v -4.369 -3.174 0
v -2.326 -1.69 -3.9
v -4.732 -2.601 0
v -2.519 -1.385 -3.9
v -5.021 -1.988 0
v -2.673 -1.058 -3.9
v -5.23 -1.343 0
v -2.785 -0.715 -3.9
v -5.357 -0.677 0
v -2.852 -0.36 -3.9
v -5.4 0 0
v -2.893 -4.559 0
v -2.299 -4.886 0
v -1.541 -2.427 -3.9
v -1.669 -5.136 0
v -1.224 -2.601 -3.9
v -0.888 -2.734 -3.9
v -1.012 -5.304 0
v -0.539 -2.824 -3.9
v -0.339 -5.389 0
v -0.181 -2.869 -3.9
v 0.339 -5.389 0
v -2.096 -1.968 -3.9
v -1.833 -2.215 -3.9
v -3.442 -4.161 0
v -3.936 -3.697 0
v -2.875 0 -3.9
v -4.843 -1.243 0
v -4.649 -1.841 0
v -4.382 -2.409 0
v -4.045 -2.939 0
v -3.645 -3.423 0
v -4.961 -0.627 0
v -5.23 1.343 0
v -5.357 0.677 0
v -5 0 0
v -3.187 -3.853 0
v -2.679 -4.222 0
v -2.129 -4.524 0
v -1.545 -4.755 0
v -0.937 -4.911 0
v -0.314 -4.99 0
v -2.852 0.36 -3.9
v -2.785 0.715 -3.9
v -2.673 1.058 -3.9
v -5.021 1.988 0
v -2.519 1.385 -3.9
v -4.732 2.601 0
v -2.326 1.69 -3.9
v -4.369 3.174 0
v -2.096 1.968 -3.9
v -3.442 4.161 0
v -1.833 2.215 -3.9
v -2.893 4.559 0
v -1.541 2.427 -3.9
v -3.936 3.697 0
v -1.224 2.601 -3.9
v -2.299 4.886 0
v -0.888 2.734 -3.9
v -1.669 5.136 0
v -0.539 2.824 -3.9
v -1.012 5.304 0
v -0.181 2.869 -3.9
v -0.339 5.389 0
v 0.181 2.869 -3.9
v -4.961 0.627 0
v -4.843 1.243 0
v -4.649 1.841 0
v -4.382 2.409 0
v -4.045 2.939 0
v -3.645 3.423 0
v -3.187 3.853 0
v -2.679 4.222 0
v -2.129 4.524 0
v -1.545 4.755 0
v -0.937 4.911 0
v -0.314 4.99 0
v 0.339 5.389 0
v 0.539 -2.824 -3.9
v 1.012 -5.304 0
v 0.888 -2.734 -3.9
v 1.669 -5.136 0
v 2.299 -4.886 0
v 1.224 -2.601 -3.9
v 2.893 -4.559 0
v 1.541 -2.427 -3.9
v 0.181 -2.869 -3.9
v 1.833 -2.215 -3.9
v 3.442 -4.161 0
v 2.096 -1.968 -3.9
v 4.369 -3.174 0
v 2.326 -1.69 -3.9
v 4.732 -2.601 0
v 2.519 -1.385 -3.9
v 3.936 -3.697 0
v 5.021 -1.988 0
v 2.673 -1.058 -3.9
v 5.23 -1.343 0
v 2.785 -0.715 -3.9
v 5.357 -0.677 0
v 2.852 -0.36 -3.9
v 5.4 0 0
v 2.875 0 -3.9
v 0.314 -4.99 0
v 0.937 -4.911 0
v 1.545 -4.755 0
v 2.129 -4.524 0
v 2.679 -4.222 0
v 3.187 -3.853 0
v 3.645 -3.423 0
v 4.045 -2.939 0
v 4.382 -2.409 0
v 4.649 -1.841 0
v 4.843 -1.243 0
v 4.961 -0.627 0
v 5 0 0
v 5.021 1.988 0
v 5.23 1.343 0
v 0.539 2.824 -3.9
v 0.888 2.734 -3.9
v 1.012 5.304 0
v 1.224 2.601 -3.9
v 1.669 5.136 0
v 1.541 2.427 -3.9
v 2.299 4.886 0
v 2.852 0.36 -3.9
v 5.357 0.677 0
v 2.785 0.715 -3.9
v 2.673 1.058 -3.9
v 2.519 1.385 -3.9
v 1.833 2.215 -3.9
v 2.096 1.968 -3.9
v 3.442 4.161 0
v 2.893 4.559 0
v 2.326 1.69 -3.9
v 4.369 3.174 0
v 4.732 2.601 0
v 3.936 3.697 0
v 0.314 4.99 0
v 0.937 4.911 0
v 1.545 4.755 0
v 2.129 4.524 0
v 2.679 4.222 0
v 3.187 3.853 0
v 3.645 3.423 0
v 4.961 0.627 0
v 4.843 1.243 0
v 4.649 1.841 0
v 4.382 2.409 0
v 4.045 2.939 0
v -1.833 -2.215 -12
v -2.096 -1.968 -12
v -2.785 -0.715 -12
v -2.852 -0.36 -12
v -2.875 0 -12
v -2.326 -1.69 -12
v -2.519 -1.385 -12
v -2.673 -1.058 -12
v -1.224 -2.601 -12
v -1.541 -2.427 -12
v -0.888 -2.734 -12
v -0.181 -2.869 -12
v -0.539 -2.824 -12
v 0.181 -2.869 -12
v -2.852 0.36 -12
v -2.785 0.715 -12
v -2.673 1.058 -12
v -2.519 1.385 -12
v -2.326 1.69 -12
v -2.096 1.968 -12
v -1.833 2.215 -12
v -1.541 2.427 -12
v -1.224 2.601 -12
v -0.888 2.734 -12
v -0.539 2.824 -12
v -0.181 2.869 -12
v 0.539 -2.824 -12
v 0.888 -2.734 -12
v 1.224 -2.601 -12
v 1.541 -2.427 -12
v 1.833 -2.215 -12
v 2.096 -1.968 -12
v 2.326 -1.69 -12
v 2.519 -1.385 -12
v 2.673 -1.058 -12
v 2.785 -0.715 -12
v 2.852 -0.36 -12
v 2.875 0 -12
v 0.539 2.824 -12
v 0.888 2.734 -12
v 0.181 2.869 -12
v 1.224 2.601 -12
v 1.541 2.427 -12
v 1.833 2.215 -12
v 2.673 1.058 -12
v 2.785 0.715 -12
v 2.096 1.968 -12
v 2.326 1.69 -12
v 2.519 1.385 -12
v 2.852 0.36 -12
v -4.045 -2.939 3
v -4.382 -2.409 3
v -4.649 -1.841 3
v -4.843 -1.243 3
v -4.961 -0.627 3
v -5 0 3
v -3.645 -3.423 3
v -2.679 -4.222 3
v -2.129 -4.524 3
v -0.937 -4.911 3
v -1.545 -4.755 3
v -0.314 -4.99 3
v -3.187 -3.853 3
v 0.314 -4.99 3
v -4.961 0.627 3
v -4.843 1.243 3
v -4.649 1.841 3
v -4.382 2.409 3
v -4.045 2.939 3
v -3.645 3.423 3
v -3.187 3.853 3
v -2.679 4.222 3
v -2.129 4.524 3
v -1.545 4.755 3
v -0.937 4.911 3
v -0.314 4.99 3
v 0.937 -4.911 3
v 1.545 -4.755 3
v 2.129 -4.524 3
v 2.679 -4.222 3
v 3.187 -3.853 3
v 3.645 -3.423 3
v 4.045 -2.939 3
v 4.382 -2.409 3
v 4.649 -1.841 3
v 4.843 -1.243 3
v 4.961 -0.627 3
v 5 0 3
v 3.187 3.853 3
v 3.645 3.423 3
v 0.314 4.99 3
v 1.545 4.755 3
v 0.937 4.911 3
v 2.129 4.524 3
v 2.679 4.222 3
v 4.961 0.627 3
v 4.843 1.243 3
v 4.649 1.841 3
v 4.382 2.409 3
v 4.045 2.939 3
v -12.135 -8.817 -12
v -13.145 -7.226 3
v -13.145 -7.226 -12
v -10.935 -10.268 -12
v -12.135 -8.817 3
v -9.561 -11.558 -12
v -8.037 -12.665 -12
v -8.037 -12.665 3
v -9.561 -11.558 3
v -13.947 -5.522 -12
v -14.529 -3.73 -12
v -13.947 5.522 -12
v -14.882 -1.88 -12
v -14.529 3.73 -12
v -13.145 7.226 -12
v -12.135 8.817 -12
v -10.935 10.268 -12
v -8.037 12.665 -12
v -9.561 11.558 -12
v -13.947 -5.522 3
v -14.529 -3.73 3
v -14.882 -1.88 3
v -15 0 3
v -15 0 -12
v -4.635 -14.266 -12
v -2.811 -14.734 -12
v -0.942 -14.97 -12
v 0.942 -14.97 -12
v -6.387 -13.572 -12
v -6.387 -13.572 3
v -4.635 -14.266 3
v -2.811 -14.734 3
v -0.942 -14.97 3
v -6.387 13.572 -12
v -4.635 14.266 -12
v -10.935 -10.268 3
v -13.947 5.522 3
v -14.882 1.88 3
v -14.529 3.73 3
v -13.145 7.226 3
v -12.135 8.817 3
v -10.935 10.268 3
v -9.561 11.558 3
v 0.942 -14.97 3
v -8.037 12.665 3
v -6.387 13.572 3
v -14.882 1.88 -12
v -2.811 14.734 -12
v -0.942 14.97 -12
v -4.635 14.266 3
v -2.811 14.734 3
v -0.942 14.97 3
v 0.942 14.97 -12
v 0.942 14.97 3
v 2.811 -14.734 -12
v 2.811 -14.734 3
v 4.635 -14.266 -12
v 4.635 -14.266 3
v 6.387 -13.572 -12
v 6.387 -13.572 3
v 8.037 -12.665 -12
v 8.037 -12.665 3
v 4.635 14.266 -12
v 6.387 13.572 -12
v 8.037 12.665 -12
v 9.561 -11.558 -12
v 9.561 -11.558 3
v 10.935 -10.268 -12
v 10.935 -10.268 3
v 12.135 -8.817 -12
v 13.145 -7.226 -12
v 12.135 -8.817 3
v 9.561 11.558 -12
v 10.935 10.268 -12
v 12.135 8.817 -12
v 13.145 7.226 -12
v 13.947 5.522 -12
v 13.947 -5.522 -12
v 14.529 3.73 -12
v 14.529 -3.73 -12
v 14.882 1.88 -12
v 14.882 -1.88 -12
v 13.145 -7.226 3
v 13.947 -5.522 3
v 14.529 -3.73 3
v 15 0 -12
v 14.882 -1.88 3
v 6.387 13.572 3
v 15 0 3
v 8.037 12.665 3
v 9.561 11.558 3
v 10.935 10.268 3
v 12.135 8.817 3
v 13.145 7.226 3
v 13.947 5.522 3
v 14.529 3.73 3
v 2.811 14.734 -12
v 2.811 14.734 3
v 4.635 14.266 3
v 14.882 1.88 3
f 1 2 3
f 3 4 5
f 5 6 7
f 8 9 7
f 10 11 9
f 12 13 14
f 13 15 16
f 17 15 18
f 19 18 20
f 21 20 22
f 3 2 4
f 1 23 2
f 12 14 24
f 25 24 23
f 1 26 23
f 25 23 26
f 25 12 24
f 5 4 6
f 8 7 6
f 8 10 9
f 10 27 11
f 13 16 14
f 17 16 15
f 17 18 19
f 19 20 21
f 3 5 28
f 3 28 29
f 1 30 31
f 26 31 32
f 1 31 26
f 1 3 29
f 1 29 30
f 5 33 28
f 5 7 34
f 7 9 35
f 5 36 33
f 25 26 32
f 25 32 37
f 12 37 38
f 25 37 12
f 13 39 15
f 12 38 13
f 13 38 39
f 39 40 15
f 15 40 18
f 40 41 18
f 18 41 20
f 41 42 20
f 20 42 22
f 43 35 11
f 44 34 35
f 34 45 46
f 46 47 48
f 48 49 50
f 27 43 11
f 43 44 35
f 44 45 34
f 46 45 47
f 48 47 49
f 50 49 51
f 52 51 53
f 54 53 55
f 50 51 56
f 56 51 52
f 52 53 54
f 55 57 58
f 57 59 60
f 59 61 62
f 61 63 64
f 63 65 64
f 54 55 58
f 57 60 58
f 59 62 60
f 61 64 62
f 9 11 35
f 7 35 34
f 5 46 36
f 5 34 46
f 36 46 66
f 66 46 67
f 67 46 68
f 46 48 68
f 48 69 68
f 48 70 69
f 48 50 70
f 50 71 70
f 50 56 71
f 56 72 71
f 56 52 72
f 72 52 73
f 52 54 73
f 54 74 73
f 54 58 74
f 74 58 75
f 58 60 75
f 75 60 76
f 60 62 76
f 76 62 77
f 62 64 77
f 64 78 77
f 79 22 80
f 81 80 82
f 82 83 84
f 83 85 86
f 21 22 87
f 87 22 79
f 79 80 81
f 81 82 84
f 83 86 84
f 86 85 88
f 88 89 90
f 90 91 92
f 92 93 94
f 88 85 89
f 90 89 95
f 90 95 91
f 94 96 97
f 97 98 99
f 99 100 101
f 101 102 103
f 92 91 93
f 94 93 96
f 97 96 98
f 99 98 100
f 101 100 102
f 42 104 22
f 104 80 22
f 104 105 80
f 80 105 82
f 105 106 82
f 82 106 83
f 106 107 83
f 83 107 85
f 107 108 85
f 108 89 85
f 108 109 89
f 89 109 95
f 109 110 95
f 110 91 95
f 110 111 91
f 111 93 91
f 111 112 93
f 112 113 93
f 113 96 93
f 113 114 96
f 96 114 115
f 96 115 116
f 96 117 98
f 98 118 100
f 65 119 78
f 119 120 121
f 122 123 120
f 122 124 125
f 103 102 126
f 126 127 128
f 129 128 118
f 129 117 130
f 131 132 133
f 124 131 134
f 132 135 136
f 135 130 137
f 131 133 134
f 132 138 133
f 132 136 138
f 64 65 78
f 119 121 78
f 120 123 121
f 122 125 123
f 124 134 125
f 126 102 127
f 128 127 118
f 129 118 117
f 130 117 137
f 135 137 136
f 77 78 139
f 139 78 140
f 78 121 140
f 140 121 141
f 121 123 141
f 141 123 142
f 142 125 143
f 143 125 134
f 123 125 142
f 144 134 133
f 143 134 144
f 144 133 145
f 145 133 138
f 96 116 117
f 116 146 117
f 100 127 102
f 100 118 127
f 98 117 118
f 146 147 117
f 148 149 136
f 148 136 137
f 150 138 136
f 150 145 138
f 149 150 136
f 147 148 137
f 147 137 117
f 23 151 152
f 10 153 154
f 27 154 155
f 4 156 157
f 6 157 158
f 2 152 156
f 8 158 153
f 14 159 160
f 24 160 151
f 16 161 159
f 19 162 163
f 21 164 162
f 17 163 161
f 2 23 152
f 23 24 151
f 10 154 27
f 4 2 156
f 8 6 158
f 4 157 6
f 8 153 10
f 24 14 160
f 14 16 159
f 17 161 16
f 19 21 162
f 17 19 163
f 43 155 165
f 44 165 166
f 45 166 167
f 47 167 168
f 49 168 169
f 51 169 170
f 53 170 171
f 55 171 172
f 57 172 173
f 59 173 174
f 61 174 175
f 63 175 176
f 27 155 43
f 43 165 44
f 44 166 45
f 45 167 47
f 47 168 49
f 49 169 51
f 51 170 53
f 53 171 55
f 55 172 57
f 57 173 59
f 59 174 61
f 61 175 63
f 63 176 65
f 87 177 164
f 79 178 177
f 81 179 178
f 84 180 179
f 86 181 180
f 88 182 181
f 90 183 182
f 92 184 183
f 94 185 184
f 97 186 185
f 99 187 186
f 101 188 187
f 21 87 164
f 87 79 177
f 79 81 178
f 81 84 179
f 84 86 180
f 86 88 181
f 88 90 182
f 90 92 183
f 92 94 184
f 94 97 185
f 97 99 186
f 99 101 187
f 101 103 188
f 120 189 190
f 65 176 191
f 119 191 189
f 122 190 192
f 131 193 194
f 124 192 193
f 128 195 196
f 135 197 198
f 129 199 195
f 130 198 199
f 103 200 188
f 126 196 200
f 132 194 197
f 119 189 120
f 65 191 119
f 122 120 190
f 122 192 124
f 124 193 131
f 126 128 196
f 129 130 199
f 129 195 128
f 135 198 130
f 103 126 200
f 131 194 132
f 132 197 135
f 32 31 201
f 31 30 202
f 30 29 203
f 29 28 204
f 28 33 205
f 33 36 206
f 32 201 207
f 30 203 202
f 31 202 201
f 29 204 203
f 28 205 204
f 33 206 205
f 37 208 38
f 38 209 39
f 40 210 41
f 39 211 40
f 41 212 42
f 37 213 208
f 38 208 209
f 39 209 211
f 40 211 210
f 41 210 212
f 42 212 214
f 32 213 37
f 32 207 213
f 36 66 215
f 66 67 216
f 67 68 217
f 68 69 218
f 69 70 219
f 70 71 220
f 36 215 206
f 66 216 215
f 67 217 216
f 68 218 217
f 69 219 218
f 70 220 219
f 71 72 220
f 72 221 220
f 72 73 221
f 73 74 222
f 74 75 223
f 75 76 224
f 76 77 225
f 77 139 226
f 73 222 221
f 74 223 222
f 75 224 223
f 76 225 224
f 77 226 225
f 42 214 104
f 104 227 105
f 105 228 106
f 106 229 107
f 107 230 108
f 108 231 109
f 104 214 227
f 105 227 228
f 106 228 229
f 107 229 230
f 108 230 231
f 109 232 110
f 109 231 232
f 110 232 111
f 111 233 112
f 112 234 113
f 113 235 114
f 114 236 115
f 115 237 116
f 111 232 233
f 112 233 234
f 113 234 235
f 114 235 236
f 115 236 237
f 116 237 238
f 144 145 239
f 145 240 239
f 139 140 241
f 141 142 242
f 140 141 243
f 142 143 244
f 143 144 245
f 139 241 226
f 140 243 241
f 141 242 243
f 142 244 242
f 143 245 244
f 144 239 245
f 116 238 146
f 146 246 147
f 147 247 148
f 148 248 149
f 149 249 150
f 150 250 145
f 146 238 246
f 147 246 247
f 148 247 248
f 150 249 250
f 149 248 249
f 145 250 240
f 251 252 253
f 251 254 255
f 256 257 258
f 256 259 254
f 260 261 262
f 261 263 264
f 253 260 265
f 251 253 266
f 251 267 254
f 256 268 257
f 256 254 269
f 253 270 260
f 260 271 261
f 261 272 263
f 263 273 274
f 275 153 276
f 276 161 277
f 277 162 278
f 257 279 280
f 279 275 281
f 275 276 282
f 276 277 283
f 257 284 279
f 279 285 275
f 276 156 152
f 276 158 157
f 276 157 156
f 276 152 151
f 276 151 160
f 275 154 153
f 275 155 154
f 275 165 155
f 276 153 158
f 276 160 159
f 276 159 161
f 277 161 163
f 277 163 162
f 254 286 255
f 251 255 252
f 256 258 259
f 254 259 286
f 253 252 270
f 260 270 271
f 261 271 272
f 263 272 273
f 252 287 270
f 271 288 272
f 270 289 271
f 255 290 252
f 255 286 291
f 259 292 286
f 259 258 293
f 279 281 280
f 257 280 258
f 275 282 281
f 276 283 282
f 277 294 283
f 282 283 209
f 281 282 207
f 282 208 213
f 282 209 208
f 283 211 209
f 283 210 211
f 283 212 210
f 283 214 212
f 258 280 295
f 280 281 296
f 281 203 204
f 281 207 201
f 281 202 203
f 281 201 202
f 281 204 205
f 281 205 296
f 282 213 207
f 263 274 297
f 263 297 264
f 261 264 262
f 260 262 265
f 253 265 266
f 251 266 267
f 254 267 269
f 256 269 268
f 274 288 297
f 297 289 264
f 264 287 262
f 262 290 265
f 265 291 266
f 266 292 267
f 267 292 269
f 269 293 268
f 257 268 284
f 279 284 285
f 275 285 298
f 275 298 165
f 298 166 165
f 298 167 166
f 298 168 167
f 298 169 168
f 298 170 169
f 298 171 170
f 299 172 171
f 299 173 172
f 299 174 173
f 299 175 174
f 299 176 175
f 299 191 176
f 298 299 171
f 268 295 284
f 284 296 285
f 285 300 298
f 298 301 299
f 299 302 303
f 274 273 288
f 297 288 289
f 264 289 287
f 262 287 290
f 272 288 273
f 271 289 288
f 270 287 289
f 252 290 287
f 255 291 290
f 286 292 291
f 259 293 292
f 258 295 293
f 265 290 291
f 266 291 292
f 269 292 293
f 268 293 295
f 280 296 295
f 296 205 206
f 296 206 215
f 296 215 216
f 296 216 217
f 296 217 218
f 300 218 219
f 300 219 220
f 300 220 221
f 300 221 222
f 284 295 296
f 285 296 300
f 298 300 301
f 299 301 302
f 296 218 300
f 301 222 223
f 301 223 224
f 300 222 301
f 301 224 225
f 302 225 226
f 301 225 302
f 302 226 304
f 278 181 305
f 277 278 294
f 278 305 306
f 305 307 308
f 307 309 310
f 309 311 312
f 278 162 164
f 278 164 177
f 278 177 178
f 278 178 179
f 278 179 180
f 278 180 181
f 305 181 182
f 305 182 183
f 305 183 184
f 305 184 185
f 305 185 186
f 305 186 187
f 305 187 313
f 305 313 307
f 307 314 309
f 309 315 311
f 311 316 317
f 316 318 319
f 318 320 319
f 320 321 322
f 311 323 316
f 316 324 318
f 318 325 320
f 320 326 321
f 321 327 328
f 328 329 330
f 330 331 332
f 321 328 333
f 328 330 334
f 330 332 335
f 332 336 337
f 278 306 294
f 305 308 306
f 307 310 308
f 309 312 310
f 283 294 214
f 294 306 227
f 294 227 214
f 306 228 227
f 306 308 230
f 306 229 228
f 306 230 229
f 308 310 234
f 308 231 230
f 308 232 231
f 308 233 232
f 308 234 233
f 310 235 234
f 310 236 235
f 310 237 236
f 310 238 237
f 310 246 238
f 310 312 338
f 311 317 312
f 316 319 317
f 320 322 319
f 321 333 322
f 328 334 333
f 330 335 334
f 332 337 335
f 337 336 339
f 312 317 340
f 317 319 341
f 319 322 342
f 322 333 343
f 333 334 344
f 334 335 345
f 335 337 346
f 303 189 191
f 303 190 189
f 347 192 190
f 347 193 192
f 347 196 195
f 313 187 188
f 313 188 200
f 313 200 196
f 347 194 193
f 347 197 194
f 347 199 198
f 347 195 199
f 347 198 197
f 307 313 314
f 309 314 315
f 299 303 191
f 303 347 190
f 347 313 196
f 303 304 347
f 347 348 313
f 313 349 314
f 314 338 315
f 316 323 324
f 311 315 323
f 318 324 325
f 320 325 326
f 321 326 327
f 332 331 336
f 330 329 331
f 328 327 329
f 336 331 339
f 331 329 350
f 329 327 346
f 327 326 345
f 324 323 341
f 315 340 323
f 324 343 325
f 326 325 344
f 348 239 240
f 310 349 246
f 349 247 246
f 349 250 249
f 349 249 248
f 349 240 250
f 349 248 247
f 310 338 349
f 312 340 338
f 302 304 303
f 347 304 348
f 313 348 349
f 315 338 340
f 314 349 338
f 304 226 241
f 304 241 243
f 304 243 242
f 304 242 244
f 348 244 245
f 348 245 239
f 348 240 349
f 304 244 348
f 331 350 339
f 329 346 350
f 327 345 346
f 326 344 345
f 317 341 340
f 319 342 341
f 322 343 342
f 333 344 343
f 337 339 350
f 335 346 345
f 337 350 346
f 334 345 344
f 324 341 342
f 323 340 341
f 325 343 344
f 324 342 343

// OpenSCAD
$fn = 50;


difference() {
	union() {
		translate(v = [0, 0, -12.0000000000]) {
			cylinder(h = 15, r = 15.0000000000);
		}
	}
	union() {
		translate(v = [0, 0, 0]) {
			rotate(a = [0, 0, 0]) {
				difference() {
					union() {
						translate(v = [0, 0, -15.0000000000]) {
							cylinder(h = 15, r = 2.6000000000);
						}
						translate(v = [0, 0, -3.9000000000]) {
							cylinder(h = 3.9000000000, r1 = 2.8750000000, r2 = 5.4000000000);
						}
						translate(v = [0, 0, -15.0000000000]) {
							cylinder(h = 15, r = 2.8750000000);
						}
						translate(v = [0, 0, -15.0000000000]) {
							cylinder(h = 15, r = 2.6000000000);
						}
					}
					union();
				}
			}
		}
		#cylinder(h = 3, r = 5.0000000000);
	}
}
